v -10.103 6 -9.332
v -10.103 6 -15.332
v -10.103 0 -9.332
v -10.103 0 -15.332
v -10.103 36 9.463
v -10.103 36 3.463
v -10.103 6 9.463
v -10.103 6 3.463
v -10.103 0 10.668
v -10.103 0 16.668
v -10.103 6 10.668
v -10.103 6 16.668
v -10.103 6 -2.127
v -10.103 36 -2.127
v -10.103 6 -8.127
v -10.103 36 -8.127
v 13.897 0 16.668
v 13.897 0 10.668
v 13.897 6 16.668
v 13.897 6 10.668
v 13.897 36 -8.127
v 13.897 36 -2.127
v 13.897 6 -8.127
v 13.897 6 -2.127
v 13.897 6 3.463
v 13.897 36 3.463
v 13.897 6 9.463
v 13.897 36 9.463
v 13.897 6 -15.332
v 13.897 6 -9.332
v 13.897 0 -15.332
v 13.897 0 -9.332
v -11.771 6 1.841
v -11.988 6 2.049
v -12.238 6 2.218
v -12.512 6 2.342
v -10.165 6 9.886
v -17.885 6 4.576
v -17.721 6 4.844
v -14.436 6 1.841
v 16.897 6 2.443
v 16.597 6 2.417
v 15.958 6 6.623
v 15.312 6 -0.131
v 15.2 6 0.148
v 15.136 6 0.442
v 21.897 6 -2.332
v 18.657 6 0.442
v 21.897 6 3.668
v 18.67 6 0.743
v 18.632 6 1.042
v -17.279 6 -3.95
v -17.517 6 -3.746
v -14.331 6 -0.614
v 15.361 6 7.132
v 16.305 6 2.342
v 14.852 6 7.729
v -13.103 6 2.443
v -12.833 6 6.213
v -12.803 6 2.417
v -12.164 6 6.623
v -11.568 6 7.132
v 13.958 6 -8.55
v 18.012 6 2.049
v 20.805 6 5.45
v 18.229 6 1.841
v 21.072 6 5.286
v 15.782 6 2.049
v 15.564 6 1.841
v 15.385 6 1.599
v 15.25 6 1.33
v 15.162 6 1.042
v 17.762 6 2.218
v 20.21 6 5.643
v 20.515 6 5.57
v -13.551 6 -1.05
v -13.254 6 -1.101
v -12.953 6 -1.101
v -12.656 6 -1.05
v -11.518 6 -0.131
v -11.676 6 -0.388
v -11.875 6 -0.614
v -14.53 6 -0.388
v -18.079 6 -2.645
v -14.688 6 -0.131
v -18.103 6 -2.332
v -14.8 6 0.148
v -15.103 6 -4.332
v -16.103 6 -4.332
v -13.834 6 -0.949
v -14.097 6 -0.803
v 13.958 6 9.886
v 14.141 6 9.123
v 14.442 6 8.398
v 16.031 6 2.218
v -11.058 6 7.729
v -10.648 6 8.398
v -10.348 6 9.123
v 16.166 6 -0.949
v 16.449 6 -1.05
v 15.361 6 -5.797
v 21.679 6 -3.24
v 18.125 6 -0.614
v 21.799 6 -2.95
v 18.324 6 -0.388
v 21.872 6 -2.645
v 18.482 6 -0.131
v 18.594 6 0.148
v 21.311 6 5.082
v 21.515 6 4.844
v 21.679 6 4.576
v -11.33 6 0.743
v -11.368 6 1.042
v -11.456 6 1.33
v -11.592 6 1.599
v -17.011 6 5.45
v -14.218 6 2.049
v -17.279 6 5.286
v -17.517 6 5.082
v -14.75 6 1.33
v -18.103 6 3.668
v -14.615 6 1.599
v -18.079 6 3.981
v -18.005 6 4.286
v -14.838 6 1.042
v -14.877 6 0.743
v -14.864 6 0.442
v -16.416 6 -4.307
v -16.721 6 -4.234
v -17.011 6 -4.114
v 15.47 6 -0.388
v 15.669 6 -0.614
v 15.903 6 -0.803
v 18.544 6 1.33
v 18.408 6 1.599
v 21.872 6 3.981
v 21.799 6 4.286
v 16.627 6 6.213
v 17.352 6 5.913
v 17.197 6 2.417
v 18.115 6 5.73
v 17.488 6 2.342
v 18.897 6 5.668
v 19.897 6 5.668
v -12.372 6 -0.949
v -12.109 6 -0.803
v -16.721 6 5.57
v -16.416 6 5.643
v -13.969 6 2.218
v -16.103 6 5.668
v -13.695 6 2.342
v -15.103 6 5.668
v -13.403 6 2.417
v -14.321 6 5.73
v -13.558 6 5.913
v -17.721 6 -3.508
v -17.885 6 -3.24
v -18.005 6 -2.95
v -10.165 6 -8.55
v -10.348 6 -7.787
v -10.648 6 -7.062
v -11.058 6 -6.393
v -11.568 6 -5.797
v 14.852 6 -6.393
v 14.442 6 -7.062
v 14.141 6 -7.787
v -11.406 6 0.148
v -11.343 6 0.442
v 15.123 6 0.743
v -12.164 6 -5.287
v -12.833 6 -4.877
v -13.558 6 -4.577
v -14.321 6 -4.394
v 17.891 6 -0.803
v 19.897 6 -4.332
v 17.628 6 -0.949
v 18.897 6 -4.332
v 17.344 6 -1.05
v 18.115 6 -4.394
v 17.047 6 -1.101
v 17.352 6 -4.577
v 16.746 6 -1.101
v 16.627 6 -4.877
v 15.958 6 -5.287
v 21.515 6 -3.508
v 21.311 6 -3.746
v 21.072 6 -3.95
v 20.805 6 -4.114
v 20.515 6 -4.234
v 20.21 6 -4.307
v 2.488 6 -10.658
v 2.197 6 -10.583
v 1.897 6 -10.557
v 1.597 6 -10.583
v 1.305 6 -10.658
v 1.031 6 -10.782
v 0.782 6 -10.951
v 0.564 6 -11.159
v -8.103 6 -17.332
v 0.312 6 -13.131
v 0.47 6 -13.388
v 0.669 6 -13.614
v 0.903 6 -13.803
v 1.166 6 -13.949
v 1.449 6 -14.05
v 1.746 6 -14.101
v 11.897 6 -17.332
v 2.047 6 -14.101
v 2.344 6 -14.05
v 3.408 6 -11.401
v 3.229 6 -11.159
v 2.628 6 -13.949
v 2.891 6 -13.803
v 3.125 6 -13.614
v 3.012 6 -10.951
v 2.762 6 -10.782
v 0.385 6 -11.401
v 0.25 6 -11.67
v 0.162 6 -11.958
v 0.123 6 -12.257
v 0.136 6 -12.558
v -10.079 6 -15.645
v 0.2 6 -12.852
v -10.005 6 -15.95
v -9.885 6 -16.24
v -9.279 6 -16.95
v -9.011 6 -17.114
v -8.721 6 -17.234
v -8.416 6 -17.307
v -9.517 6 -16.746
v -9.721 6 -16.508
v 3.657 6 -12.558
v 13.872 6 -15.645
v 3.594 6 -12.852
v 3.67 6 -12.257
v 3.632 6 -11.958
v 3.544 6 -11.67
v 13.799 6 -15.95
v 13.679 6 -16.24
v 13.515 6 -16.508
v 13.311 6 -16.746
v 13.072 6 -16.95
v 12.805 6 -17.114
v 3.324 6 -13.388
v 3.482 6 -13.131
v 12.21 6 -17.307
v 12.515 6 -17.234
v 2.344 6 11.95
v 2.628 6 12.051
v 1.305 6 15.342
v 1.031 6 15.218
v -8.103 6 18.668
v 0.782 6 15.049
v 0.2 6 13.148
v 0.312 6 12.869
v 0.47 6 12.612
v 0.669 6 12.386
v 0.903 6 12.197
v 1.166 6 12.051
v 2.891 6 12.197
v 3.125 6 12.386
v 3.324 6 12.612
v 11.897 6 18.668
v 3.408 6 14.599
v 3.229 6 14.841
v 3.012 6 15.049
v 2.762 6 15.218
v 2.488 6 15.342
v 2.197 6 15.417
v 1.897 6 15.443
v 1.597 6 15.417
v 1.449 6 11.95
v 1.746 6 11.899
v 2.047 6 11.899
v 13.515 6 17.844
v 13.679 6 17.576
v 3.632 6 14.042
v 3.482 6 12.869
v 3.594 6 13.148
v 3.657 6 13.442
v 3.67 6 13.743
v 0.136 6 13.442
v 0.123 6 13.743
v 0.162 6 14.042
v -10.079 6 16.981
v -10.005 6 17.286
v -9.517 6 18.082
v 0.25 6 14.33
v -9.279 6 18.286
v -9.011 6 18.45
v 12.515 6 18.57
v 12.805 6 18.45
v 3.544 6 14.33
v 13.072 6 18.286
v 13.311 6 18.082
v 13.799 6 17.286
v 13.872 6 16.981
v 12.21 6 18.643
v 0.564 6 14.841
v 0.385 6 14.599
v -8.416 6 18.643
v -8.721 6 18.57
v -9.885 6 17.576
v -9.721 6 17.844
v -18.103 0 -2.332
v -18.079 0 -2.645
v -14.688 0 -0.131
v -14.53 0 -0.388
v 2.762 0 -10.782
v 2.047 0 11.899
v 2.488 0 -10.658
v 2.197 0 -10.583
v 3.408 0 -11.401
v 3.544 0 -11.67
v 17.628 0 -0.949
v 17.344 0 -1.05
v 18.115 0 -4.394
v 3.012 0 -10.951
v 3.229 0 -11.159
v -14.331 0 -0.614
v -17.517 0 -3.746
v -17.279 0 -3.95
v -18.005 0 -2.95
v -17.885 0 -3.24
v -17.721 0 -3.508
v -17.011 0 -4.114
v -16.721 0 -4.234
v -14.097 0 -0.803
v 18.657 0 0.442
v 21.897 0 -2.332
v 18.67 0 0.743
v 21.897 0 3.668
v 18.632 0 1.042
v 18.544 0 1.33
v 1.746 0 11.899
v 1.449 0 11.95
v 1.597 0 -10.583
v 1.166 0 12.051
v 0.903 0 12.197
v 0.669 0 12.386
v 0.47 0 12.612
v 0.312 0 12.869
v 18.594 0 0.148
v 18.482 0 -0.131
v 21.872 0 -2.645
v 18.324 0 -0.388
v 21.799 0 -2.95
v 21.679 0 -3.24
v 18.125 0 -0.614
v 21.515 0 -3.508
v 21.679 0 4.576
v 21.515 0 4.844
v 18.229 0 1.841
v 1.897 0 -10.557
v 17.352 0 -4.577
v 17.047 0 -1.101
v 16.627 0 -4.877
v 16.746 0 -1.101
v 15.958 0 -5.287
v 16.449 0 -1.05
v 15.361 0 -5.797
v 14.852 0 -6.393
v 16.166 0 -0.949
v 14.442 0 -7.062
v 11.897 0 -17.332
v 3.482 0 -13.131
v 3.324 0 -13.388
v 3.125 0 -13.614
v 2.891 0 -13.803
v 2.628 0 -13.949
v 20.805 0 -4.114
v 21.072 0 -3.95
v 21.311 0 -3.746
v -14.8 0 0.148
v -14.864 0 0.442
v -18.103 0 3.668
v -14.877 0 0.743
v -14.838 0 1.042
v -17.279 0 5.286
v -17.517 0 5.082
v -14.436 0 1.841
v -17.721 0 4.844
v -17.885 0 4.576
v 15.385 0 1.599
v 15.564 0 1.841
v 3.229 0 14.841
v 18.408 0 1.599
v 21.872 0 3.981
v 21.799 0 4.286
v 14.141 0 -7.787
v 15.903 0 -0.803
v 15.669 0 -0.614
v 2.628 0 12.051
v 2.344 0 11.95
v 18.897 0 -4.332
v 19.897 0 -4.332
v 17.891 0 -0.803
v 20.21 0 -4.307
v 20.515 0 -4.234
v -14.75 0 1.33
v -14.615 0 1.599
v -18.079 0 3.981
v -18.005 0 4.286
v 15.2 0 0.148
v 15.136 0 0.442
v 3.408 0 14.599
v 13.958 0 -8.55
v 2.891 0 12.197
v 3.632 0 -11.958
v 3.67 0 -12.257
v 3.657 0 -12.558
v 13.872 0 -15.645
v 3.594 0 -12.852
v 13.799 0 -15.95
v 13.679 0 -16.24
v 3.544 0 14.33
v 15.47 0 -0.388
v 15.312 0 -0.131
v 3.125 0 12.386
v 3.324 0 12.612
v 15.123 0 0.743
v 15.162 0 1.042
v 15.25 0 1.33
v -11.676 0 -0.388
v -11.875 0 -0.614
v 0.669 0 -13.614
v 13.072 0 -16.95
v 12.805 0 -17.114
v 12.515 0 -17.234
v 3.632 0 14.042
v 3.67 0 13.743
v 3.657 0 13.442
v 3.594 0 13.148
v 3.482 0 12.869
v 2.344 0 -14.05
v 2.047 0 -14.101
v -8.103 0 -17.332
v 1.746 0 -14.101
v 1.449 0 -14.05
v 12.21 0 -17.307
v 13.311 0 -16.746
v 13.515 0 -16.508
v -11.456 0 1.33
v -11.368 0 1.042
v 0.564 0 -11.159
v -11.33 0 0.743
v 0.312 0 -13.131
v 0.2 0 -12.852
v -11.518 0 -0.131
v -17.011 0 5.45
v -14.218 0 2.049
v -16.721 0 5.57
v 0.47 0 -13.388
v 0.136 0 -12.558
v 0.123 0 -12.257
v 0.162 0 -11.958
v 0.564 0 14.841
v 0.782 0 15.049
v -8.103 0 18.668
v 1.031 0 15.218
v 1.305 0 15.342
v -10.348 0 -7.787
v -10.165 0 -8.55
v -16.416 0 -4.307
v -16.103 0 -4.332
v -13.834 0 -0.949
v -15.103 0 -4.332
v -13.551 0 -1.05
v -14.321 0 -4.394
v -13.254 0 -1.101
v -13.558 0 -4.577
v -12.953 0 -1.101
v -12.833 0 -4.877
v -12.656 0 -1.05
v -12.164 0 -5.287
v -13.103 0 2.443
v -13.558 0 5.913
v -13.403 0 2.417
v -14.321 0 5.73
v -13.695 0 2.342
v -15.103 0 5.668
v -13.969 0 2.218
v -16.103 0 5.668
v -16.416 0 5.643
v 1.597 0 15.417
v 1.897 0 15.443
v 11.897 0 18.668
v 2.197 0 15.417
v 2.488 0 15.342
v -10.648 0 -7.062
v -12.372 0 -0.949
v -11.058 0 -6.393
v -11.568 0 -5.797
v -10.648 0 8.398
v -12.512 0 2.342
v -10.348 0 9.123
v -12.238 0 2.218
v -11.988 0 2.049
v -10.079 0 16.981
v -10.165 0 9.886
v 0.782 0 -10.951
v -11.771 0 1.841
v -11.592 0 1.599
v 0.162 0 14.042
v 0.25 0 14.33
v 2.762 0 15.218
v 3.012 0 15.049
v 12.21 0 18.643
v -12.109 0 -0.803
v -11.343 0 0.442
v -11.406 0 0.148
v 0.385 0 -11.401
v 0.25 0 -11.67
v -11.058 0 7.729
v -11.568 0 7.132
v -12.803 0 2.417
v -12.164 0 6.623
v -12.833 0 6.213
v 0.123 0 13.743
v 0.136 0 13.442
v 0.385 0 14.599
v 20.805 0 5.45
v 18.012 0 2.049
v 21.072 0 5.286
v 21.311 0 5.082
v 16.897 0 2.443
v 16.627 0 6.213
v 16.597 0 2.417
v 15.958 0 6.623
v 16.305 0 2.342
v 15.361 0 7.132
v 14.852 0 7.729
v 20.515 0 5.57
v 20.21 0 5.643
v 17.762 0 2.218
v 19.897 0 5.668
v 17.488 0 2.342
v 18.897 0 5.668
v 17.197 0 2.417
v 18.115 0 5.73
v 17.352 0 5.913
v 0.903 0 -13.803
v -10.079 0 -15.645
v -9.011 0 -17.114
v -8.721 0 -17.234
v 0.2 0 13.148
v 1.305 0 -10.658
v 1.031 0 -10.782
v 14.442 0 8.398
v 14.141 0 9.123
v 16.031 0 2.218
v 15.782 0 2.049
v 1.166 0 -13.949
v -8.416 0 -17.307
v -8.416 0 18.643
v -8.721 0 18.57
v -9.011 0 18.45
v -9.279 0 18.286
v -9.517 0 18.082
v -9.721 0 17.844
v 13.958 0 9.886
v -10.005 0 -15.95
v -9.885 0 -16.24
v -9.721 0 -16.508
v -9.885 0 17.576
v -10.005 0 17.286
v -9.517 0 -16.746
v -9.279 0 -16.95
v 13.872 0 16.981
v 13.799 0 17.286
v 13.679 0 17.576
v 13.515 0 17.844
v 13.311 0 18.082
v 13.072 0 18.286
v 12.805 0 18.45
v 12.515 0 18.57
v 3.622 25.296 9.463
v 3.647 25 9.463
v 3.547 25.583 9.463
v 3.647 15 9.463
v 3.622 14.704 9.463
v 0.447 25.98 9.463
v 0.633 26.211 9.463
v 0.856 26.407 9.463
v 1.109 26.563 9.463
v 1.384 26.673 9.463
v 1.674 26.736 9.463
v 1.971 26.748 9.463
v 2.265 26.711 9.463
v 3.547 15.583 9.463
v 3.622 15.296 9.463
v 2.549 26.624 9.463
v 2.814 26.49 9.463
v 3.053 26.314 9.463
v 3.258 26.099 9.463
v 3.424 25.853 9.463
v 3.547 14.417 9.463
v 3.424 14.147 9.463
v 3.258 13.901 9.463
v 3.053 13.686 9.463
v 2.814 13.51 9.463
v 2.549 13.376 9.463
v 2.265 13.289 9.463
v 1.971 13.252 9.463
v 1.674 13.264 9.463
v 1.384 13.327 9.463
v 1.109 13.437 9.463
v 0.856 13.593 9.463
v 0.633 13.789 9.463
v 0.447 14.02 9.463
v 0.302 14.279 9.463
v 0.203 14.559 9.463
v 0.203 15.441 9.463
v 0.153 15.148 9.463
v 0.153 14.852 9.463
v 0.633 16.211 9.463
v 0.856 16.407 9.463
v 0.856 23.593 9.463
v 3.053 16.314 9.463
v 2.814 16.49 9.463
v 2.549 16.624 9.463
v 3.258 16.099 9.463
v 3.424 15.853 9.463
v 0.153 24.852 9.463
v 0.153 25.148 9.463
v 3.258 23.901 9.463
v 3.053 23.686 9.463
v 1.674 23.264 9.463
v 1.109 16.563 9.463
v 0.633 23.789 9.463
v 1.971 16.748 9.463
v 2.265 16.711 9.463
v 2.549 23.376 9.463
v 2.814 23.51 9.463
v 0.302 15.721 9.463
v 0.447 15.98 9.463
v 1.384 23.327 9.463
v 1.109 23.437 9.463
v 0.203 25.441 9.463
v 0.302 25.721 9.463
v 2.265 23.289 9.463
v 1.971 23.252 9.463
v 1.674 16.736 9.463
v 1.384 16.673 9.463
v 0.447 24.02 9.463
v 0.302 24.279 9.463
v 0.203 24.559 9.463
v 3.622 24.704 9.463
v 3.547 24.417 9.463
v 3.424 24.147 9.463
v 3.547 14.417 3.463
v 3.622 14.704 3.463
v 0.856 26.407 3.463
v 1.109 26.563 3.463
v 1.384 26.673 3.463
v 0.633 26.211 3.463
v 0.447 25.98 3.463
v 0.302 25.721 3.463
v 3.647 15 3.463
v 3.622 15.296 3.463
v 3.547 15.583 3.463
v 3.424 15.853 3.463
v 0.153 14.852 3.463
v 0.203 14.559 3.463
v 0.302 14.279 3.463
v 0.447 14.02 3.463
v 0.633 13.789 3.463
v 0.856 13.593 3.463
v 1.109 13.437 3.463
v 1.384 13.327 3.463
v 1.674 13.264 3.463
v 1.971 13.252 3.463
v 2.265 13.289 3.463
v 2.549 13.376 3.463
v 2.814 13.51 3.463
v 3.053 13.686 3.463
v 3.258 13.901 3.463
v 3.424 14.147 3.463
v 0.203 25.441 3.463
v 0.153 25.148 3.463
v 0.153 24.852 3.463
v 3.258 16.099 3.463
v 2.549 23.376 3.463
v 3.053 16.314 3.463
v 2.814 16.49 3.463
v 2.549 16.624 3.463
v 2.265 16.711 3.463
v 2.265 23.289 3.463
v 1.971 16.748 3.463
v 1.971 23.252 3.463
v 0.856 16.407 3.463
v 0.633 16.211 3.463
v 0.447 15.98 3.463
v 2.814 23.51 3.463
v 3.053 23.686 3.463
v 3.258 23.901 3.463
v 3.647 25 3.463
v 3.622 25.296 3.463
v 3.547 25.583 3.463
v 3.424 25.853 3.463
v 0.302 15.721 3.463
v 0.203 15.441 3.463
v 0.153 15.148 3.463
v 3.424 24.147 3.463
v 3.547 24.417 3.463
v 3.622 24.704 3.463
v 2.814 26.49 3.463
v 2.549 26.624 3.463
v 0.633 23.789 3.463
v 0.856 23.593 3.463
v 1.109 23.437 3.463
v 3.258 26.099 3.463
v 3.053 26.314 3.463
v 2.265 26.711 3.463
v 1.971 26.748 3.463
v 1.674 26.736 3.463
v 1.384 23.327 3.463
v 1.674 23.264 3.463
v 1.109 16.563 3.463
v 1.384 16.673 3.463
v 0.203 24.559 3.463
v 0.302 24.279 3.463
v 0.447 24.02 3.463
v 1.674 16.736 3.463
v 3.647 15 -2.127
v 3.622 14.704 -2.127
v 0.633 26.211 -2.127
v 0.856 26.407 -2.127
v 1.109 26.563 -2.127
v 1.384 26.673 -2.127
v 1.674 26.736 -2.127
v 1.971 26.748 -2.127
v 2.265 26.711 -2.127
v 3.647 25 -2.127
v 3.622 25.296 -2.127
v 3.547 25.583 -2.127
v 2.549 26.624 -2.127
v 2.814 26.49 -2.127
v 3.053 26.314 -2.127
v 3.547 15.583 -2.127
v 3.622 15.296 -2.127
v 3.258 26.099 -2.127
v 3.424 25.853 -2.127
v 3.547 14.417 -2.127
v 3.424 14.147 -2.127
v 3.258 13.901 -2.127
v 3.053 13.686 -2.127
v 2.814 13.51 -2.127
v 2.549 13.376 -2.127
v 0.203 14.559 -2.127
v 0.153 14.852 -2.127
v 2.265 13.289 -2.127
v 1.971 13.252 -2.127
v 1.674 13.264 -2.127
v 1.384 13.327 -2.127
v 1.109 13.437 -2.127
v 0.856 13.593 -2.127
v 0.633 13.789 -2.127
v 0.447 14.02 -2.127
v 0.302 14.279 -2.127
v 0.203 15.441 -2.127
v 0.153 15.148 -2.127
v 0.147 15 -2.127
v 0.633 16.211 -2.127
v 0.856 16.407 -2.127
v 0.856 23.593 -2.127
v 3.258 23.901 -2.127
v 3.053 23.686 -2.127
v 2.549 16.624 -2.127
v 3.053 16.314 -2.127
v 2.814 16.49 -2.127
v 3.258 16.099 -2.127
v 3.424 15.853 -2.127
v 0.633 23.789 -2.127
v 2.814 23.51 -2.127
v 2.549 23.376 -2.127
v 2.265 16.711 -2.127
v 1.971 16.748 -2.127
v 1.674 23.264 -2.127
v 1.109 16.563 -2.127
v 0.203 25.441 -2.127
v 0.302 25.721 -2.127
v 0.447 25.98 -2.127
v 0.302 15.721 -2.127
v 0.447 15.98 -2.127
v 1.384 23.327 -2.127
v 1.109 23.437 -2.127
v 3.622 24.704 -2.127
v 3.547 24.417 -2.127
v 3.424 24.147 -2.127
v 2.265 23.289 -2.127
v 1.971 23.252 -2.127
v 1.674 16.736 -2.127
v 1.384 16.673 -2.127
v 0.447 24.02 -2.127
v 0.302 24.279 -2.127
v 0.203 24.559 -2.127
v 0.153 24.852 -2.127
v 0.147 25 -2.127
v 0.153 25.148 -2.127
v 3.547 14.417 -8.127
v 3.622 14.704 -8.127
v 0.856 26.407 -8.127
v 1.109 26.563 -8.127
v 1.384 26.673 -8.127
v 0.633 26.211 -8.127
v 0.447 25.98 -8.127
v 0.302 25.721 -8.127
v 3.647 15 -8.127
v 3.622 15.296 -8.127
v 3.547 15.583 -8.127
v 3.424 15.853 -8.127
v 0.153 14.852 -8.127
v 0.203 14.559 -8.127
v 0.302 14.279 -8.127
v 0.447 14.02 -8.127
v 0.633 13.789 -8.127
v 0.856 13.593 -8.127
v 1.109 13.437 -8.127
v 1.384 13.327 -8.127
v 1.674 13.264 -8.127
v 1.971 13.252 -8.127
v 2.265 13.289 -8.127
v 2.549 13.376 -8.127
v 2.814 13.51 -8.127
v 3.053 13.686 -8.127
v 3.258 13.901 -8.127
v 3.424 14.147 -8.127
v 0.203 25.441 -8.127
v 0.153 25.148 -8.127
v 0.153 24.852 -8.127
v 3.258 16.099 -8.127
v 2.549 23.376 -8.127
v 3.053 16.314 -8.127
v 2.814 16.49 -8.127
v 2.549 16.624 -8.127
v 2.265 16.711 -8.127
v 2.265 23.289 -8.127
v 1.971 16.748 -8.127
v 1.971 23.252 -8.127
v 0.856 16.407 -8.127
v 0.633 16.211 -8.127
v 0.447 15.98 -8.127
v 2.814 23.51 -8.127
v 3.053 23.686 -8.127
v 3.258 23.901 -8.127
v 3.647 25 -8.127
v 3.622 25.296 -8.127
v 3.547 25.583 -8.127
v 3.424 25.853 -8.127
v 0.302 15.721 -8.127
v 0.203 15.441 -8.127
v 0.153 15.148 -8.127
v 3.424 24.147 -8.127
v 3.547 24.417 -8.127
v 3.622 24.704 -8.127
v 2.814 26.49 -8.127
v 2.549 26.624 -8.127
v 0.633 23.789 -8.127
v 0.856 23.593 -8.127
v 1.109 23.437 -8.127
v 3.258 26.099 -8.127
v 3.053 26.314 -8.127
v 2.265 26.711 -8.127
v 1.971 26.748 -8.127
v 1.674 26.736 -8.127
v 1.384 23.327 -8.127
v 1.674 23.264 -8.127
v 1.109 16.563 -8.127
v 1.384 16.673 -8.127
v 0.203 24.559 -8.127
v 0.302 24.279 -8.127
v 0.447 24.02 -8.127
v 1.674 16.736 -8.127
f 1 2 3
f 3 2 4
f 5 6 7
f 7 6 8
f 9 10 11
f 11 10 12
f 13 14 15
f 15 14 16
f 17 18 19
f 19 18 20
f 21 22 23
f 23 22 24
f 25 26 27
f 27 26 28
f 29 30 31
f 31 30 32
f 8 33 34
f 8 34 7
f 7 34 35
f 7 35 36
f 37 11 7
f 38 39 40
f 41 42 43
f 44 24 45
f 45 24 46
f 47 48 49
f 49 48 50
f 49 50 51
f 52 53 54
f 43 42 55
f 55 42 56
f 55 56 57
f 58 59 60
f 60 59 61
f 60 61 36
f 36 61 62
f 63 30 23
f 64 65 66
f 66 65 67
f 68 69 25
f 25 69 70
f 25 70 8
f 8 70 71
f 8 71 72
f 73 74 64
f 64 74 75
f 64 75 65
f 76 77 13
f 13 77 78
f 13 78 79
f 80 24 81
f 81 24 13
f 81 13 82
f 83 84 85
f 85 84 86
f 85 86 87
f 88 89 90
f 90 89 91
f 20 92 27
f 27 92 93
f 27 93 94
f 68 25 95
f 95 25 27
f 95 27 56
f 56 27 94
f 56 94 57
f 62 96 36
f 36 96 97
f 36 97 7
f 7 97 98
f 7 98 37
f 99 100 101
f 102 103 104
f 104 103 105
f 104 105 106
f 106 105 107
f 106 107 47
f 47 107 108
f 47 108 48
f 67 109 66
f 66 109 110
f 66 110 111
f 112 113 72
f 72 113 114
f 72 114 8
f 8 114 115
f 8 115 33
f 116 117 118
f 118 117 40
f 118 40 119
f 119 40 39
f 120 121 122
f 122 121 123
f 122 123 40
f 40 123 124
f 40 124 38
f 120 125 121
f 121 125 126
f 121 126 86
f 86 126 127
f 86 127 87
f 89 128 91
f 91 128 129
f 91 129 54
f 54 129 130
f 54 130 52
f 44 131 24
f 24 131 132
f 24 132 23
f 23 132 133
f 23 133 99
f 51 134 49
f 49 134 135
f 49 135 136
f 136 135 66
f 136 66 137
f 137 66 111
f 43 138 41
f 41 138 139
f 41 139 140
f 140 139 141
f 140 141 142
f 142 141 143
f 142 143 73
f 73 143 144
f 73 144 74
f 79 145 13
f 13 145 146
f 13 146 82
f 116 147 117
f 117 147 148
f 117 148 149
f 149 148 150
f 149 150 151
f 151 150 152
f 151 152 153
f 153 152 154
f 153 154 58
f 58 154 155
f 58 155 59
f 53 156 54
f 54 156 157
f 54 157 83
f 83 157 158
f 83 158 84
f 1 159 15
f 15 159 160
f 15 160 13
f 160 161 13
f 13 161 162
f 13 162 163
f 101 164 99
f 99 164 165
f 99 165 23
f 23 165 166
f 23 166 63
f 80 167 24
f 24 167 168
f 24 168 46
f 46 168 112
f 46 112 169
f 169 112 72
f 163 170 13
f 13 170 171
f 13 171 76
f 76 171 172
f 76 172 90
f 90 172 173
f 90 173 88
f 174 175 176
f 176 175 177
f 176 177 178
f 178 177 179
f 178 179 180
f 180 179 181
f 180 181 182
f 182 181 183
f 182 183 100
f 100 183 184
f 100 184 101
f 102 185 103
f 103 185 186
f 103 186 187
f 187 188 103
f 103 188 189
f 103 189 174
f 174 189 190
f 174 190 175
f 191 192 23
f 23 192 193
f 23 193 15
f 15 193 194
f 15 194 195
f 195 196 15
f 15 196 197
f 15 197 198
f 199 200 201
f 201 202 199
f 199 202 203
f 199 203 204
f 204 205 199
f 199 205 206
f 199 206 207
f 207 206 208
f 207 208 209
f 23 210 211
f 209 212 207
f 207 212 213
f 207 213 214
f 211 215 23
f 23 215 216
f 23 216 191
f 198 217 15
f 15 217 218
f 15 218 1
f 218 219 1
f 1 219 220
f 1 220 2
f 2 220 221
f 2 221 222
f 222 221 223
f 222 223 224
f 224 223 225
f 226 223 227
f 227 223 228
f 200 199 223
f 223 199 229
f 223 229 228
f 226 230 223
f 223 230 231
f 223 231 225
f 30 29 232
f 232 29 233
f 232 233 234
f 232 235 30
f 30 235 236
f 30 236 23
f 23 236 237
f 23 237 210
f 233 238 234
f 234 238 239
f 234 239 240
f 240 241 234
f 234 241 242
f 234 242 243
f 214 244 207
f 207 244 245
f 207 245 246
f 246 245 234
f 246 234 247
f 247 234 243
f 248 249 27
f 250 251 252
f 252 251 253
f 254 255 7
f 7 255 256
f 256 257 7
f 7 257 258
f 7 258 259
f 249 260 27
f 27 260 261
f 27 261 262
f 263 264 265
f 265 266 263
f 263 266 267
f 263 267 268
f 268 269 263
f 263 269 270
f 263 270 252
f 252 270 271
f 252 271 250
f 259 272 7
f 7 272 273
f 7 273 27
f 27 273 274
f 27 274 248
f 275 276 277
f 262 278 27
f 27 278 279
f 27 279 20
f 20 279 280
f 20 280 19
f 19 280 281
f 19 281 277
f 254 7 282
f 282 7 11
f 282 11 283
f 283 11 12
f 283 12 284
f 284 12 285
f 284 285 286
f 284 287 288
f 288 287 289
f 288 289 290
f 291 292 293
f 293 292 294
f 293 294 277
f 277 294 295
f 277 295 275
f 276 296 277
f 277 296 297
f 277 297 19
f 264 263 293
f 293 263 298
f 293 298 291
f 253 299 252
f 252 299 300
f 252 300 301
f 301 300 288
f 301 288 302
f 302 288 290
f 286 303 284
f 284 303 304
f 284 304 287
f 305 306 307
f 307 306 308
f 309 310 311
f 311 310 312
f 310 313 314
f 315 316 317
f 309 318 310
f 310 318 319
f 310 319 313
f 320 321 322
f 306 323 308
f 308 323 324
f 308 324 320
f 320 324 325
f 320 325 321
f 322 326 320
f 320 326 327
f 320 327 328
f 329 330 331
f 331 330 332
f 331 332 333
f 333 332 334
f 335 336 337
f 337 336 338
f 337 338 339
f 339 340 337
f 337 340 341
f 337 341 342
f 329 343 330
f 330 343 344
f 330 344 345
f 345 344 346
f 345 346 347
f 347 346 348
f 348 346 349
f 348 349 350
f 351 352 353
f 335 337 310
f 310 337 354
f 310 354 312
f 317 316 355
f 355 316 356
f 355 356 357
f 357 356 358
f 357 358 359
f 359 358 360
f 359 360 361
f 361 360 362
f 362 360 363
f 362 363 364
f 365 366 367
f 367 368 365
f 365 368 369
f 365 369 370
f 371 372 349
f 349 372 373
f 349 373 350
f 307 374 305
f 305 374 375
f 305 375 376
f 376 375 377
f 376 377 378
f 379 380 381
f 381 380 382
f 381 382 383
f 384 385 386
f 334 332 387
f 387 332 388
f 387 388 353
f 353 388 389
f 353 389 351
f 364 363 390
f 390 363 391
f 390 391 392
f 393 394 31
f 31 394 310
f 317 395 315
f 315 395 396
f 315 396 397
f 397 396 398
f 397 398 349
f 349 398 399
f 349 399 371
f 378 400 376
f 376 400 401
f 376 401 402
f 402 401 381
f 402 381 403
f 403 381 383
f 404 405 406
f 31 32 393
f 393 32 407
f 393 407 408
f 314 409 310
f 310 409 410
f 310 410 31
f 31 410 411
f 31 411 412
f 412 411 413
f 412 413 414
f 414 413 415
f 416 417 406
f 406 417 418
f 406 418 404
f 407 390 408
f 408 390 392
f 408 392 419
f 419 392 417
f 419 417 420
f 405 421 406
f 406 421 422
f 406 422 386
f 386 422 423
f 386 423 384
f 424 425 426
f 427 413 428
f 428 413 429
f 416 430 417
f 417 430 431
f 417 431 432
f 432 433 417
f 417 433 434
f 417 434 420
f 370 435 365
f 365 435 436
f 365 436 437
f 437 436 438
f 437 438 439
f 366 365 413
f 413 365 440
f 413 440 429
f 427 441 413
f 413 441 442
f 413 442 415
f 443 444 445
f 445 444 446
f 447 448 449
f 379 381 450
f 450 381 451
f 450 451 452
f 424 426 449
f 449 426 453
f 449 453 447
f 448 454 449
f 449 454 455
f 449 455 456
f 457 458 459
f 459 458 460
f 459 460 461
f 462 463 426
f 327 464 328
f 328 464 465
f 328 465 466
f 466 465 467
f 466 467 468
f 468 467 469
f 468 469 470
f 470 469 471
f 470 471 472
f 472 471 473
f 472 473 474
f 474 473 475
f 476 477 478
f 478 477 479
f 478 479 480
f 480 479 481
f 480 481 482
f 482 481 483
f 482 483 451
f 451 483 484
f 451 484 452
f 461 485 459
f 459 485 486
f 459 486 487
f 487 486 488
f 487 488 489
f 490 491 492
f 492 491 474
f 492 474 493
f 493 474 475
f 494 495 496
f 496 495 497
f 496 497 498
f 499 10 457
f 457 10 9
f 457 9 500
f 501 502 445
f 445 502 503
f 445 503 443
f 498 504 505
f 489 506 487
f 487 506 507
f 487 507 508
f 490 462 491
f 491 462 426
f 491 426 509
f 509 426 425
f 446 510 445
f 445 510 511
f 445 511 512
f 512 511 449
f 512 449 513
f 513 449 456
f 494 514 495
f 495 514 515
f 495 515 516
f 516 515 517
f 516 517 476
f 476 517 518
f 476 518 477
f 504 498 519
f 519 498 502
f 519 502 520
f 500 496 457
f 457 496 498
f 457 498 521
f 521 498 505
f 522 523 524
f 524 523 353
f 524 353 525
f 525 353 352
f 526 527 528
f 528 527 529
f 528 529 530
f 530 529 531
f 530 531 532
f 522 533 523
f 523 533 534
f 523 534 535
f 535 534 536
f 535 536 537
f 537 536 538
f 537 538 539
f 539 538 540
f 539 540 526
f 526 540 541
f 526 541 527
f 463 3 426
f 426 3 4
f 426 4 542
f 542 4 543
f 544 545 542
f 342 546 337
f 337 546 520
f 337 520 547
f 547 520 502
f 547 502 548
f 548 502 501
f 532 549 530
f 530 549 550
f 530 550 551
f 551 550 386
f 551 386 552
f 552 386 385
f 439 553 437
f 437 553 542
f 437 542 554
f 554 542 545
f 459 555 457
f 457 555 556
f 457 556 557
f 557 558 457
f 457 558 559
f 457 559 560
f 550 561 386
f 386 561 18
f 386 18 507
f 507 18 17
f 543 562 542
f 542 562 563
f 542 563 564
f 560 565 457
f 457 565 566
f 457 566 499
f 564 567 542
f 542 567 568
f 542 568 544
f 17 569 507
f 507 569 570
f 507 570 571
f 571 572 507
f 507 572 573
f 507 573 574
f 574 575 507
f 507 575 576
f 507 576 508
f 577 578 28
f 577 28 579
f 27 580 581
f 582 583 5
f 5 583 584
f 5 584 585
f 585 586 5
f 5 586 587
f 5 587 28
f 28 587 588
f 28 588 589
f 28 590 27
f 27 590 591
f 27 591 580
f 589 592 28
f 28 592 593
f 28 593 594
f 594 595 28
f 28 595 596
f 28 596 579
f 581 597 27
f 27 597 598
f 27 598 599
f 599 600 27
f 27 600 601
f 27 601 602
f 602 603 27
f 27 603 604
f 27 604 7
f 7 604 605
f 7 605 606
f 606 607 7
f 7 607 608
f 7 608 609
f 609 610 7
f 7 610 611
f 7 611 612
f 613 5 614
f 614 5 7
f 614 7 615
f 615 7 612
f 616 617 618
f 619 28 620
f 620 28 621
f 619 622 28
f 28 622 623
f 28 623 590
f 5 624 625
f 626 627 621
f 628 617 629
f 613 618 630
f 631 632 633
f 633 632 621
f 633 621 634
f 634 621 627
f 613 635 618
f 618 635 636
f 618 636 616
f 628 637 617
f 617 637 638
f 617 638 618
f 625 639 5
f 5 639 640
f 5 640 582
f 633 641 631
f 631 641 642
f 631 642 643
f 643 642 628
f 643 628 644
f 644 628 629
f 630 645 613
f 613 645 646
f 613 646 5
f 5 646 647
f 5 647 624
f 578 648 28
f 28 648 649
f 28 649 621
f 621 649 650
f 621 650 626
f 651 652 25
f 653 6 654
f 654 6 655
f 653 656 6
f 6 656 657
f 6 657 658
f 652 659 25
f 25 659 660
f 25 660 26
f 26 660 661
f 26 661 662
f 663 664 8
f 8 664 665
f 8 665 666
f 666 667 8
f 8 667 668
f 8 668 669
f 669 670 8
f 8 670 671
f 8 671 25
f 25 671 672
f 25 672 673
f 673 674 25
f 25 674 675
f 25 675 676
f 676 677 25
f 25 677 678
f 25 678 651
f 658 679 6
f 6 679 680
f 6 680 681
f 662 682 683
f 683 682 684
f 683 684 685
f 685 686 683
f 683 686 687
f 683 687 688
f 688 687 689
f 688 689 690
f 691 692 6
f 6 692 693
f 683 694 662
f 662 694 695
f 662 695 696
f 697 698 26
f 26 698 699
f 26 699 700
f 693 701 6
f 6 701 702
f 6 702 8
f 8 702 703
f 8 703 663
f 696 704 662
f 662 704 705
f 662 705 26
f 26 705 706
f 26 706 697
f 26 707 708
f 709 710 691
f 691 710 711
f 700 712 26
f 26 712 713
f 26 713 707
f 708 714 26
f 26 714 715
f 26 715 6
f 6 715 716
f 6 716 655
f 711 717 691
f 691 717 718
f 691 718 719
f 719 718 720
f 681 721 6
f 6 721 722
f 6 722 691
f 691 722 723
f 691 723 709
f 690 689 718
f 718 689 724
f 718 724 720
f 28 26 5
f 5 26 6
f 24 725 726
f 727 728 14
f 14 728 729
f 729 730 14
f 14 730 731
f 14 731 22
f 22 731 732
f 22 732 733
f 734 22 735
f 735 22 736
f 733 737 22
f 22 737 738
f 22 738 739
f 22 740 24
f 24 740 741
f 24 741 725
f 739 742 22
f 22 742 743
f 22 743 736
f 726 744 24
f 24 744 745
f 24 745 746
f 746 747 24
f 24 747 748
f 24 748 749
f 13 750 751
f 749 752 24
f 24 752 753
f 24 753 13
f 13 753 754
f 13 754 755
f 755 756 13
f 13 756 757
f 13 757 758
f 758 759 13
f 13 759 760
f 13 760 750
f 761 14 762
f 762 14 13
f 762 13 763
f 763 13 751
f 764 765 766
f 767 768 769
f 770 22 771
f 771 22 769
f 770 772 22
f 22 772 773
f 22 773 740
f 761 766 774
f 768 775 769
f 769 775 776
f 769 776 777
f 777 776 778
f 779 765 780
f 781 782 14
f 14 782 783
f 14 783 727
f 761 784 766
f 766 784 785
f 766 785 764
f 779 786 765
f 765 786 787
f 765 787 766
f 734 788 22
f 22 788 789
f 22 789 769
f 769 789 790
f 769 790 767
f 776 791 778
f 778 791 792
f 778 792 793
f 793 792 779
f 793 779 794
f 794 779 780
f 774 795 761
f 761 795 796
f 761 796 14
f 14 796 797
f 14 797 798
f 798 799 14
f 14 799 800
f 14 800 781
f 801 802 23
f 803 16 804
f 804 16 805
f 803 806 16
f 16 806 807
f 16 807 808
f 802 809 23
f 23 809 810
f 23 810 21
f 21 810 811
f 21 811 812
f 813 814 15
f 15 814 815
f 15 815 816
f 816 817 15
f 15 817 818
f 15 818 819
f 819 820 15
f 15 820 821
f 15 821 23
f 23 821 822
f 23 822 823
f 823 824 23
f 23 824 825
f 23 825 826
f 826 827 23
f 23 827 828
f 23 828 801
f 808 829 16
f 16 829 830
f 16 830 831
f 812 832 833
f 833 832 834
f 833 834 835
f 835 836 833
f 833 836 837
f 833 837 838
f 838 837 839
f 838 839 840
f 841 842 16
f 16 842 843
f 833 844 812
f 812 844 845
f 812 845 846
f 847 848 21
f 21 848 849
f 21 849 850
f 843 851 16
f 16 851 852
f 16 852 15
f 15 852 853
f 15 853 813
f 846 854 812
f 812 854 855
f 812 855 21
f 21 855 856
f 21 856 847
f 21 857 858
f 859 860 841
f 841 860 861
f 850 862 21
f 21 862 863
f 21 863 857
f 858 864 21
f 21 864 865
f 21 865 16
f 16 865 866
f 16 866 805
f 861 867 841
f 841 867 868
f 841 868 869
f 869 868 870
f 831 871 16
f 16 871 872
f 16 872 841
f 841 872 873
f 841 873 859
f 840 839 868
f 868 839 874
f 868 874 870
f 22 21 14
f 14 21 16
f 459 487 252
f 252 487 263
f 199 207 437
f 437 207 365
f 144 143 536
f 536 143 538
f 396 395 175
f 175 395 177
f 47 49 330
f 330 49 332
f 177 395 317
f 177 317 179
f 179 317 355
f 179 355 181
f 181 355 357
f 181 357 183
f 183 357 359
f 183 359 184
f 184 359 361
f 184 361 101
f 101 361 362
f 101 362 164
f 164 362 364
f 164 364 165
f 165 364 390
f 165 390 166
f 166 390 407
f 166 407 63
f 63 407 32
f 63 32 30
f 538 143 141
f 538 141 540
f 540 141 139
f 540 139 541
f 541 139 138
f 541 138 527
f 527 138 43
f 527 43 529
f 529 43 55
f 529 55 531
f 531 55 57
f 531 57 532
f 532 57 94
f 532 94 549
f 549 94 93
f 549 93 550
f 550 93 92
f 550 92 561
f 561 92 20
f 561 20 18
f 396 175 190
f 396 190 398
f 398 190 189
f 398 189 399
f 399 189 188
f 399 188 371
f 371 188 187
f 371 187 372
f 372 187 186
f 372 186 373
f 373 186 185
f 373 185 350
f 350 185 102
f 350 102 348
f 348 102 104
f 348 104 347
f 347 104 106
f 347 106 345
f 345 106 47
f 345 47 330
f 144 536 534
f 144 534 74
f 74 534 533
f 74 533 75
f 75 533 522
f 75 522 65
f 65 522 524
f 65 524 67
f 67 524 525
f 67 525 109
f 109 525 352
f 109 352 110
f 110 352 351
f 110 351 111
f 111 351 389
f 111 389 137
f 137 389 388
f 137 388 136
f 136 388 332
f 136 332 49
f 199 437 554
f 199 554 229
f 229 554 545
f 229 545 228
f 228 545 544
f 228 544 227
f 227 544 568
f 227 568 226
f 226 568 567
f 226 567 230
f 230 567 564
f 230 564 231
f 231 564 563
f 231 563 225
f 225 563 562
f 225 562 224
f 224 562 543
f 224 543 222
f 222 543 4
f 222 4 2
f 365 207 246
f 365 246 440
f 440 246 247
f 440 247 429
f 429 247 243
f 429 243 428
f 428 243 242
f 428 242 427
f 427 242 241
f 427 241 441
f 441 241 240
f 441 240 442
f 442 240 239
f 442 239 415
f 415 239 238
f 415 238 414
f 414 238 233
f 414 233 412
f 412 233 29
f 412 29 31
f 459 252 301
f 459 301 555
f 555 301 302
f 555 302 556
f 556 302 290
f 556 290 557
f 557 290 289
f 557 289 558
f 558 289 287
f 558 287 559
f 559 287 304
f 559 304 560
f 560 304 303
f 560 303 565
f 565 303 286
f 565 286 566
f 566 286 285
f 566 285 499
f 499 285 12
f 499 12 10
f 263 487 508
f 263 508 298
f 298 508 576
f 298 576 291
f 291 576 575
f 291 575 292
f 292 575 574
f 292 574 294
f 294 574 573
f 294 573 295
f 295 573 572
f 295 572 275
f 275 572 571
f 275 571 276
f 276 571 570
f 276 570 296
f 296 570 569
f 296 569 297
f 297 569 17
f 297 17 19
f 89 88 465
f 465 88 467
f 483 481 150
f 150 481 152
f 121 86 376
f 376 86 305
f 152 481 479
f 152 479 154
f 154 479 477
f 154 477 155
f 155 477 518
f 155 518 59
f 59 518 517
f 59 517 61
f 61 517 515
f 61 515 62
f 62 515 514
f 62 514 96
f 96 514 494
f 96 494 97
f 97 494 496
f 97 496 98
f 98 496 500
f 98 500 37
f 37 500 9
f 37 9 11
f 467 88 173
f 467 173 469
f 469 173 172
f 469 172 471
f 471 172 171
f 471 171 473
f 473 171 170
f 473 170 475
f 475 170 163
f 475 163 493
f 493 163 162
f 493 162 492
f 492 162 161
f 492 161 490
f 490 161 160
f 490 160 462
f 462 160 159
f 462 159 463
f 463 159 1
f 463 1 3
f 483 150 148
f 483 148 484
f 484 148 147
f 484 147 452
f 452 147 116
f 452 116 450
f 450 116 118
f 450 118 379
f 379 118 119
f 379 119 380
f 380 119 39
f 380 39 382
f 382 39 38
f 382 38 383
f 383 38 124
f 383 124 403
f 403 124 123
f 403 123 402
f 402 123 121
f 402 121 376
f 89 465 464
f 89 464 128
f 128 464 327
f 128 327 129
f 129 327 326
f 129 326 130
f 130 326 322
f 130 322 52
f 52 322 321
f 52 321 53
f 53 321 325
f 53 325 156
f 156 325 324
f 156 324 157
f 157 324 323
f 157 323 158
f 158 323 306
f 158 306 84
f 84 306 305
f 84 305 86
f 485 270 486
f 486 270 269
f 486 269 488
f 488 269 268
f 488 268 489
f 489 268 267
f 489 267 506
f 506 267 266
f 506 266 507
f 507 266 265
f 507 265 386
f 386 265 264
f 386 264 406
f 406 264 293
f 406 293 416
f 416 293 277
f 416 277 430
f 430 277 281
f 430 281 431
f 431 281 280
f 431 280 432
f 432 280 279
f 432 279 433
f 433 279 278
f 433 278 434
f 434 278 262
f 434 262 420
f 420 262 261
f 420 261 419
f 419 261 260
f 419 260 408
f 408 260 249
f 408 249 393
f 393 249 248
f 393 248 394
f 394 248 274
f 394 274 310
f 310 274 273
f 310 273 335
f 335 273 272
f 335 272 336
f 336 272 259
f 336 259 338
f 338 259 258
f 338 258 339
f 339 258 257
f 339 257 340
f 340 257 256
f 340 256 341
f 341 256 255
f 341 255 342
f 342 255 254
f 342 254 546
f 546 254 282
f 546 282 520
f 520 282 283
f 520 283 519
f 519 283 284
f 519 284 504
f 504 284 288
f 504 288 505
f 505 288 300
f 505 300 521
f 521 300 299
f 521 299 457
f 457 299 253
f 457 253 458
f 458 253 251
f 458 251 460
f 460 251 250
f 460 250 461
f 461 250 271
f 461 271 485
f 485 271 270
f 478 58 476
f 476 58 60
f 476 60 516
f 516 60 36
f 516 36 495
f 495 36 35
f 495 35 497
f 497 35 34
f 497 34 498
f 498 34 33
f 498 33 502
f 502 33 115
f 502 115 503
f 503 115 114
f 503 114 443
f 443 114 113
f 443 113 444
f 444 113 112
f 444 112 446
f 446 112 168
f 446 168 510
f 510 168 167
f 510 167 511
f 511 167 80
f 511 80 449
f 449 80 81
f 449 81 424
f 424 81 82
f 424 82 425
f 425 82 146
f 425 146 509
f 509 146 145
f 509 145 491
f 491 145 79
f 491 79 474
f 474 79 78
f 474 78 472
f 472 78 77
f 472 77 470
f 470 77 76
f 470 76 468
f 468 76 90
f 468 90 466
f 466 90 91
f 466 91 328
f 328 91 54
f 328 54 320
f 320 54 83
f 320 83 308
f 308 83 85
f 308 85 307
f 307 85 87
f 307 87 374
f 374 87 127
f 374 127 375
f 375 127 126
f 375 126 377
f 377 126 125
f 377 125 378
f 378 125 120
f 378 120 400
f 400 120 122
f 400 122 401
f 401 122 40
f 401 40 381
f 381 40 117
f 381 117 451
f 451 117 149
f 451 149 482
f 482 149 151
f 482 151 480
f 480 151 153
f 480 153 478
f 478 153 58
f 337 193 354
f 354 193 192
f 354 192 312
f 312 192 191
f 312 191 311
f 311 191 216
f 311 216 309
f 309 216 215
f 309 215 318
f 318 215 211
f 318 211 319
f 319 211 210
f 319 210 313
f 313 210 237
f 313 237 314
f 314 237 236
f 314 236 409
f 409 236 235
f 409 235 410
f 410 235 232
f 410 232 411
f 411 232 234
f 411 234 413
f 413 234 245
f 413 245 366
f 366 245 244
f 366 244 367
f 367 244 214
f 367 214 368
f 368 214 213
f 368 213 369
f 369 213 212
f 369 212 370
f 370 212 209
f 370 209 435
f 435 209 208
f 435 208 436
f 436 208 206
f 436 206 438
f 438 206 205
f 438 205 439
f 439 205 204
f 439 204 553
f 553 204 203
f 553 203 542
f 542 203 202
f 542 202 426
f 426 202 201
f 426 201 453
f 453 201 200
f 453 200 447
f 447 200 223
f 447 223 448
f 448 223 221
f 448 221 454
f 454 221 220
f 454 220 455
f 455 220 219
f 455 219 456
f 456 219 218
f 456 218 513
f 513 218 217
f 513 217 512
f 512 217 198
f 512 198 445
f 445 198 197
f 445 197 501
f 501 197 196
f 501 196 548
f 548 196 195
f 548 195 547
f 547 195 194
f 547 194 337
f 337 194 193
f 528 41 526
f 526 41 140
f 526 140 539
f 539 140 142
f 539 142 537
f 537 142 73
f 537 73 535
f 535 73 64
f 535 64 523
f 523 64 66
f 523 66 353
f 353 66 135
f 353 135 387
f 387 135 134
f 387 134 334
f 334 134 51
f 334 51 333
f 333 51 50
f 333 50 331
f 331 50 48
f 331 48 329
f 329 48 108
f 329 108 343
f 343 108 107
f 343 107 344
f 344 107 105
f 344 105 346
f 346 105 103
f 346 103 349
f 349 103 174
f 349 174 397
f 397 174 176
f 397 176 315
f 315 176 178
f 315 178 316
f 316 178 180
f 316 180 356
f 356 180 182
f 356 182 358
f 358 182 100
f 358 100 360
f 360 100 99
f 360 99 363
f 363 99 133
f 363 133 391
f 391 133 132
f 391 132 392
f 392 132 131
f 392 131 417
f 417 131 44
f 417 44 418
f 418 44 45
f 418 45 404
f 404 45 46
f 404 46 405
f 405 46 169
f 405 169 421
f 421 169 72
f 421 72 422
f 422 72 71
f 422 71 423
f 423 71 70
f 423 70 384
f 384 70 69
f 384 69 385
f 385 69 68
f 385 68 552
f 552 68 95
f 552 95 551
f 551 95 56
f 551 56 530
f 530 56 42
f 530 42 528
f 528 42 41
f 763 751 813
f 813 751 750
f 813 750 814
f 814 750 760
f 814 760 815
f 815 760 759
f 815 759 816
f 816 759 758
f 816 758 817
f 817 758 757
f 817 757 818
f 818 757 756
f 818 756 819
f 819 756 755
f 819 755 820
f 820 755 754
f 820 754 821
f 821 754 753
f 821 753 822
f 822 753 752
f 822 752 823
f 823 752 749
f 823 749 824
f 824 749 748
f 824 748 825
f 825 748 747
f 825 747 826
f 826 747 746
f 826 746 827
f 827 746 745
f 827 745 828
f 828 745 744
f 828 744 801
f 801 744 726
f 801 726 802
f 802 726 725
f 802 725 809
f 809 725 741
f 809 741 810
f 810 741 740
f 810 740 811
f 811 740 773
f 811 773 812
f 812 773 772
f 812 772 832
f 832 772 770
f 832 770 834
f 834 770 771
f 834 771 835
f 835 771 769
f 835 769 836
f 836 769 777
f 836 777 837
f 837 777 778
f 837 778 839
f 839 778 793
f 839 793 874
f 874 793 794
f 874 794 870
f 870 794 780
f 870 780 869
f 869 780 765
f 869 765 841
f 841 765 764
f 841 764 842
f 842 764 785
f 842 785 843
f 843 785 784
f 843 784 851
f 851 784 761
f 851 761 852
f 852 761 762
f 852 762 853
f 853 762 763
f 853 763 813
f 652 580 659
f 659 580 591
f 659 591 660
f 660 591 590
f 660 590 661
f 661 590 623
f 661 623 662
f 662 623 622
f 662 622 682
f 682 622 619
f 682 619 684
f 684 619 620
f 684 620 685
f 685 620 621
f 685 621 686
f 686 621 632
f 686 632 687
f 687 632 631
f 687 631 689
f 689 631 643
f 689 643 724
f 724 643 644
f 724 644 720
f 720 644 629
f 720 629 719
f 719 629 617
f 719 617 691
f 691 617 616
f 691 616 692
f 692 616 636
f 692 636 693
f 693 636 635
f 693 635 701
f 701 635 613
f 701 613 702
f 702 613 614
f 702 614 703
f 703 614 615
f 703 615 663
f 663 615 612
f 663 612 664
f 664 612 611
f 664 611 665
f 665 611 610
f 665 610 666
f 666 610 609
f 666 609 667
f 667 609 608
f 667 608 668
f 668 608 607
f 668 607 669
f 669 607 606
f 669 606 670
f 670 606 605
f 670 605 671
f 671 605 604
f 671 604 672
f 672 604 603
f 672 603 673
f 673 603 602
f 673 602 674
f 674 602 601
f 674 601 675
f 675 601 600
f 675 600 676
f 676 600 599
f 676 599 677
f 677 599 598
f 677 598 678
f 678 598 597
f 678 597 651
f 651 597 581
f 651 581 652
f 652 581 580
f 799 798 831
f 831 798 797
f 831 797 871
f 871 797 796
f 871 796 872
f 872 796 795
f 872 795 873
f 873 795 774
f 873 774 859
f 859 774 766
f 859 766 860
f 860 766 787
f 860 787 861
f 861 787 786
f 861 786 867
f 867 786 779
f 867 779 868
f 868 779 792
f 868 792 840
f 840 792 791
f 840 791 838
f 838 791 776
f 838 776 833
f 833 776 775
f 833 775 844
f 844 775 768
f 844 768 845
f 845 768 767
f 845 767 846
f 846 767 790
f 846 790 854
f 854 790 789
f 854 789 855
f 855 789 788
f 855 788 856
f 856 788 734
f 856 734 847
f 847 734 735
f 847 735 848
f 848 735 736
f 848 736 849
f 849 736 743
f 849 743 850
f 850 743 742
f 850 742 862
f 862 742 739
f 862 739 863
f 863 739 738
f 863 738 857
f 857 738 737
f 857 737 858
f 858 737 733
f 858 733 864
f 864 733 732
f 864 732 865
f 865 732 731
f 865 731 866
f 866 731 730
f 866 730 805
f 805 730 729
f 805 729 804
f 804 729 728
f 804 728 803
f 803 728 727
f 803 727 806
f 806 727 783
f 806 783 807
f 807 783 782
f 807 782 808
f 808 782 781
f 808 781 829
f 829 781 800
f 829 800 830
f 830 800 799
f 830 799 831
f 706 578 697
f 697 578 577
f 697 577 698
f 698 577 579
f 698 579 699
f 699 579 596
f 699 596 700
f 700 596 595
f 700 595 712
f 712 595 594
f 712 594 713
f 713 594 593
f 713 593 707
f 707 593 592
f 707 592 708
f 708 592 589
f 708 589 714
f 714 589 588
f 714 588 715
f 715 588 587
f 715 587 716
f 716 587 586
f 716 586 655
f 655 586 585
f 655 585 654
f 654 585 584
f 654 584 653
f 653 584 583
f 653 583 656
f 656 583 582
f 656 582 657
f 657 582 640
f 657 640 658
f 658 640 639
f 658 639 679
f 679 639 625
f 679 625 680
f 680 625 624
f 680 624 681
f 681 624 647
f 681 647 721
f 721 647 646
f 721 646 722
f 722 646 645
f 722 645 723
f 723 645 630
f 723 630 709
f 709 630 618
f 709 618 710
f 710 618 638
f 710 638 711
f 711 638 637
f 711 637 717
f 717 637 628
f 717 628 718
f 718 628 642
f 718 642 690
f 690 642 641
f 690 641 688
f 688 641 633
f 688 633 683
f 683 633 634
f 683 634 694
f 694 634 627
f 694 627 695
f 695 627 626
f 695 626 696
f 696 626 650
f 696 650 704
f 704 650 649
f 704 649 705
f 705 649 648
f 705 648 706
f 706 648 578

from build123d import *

# Parameters (mm, degrees)
SKETCH1_W           = 24
SKETCH1_H           = 24
BOSS_EXTRUDE1_DEPTH = 6
SKETCH2_W           = 24
SKETCH2_H           = 6
BOSS_EXTRUDE2_DEPTH = 30
SKETCH3_W           = 24
SKETCH3_H           = 6
BOSS_EXTRUDE3_DEPTH = 6
SKETCH4_W           = 24
SKETCH4_H           = 6
BOSS_EXTRUDE4_DEPTH = 6
SKETCH5_W           = 10
SKETCH5_H           = 6
BOSS_EXTRUDE5_DEPTH = 8
FILLET1_R           = 5
FILLET2_R           = 2
FILLET3_R           = 2
SKETCH6_W           = 10
SKETCH6_H           = 6
BOSS_EXTRUDE6_DEPTH = 8
FILLET4_R           = 5
FILLET5_R           = 2
SKETCH7_R           = 1.775
CUT_EXTRUDE1_DEPTH  = 42.568724431
CUT_EXTRUDE2_REACH  = 51.934
SKETCH8_R           = 1.75


with BuildPart() as part:
    # Sketch1 → Boss-Extrude1 (new body)
    with BuildSketch(Plane(origin=(0, 0, 0), x_dir=(1, 0, 0), z_dir=(0, 1, 0))):
        with Locations((1.896724894, -0.667948192)):
            Rectangle(SKETCH1_W, SKETCH1_H)
    extrude(amount=BOSS_EXTRUDE1_DEPTH)

    # Sketch2 → Boss-Extrude2 (add)
    with BuildSketch(Plane(origin=(0, 6, 0), x_dir=(1, 0, 0), z_dir=(0, 1, 0))):
        with Locations((1.896724894, -6.462948192)):
            Rectangle(SKETCH2_W, SKETCH2_H)
        with Locations((1.896724894, 5.127051808)):
            Rectangle(SKETCH2_W, SKETCH2_H)
    extrude(amount=BOSS_EXTRUDE2_DEPTH)

    # Sketch3 → Boss-Extrude3 (add)
    with BuildSketch(Plane.XY.offset(12.667948192)):
        with Locations((1.896724894, 3)):
            Rectangle(SKETCH3_W, SKETCH3_H)
    extrude(amount=BOSS_EXTRUDE3_DEPTH)

    # Sketch4 → Boss-Extrude4 (add)
    with BuildSketch(Plane(origin=(0, 0, -11.332051808), x_dir=(-1, 0, 0), z_dir=(0, 0, -1))):
        with Locations((-1.896724894, 3)):
            Rectangle(SKETCH4_W, SKETCH4_H)
    extrude(amount=BOSS_EXTRUDE4_DEPTH)

    # Sketch5 → Boss-Extrude5 (add)
    with BuildSketch(Plane(origin=(13.896724894, 0, 0), x_dir=(0, 0, -1), z_dir=(1, 0, 0))):
        with Locations((-0.667948192, 3)):
            Rectangle(SKETCH5_W, SKETCH5_H)
    extrude(amount=BOSS_EXTRUDE5_DEPTH)

    # Fillet1
    # the kernel refuses this fillet: 5 mm, written as the material it adds along each edge
    with BuildSketch(Plane(origin=(13.896724894, 0, -4.332051808), x_dir=(0, 0, -1), z_dir=(0, 1, 0)), Plane(origin=(13.896724894, 6, 5.667948192), x_dir=(0, 0, 1), z_dir=(0, -1, 0))) as fillet1_piece_1:
        with BuildLine():
            CenterArc((FILLET1_R, -FILLET1_R), FILLET1_R, 90, 90)
            Line((0, -FILLET1_R), (0, 0))
            Line((0, 0), (FILLET1_R, 0))
        make_face()
    extrude(amount=6)

    # Fillet2
    fillet2_edges = [part.edges().sort_by_distance(p)[0] for p in [
        (21.896724894, 3, -4.332051808),
        (21.896724894, 3, 5.667948192),
    ]]
    fillet(fillet2_edges, radius=FILLET2_R)

    # Fillet3
    fillet3_edges = [part.edges().sort_by_distance(p)[0] for p in [
        (-10.103275106, 3, 18.667948192),
        (13.896724894, 3, 18.667948192),
        (13.896724894, 3, -17.332051808),
        (-10.103275106, 3, -17.332051808),
    ]]
    fillet(fillet3_edges, radius=FILLET3_R)

    # Sketch6 → Boss-Extrude6 (add)
    with BuildSketch(Plane.ZY.offset(10.103275106)):
        with Locations((0.667948192, 3)):
            Rectangle(SKETCH6_W, SKETCH6_H)
    extrude(amount=BOSS_EXTRUDE6_DEPTH)

    # Fillet4
    # the kernel refuses this fillet: 5 mm, written as the material it adds along each edge
    with BuildSketch(Plane(origin=(-10.103275106, 6, -4.332051808), x_dir=(0, 0, -1), z_dir=(0, -1, 0)), Plane(origin=(-10.103275106, 0, 5.667948192), x_dir=(0, 0, 1), z_dir=(0, 1, 0))) as fillet4_piece_1:
        with BuildLine():
            CenterArc((FILLET4_R, -FILLET4_R), FILLET4_R, 90, 90)
            Line((0, -FILLET4_R), (0, 0))
            Line((0, 0), (FILLET4_R, 0))
        make_face()
    extrude(amount=6)

    # Fillet5
    fillet5_edges = [part.edges().sort_by_distance(p)[0] for p in [
        (-18.103275106, 3, -4.332051808),
        (-18.103275106, 3, 5.667948192),
    ]]
    fillet(fillet5_edges, radius=FILLET5_R)

    # Sketch7 → Cut-Extrude1 (cut, through all)
    with BuildSketch(Plane(origin=(0, 6, 0), x_dir=(1, 0, 0), z_dir=(0, 1, 0))):
        with Locations(Location((1.896724894, -13.667948192, 0), (0, 0, 270))):
            Circle(SKETCH7_R)
        with Locations(Location((-13.103275106, -0.667948192, 0), (0, 0, 270))):
            Circle(SKETCH7_R)
        with Locations(Location((1.896724894, 12.332051808, 0), (0, 0, 270))):
            Circle(SKETCH7_R)
        with Locations(Location((16.896724894, -0.667948192, 0), (0, 0, 270))):
            Circle(SKETCH7_R)
    extrude(amount=-CUT_EXTRUDE1_DEPTH, mode=Mode.SUBTRACT)

    # Cut-Extrude2: up to this face of the body (flat: up to its plane)
    cut_extrude2_end = Plane(part.part.faces().sort_by_distance((1.896724894, 21, -8.127051808))[0])
    # Sketch8 → Cut-Extrude2 (cut, up to the picked face)
    with BuildSketch(Plane.XY.offset(9.462948192), mode=Mode.PRIVATE) as cut_extrude2_sk1:
        with Locations((1.896724894, 15)):
            Circle(SKETCH8_R)
    cut_extrude2_tool1 = split(extrude(cut_extrude2_sk1.sketch, amount=-CUT_EXTRUDE2_REACH, mode=Mode.PRIVATE), bisect_by=cut_extrude2_end, keep=Keep.BOTH, mode=Mode.PRIVATE)
    # Sketch8 → Cut-Extrude2 (cut, up to the picked face)
    with BuildSketch(Plane.XY.offset(9.462948192), mode=Mode.PRIVATE) as cut_extrude2_sk2:
        with Locations((1.896724894, 25)):
            Circle(SKETCH8_R)
    cut_extrude2_tool2 = split(extrude(cut_extrude2_sk2.sketch, amount=-CUT_EXTRUDE2_REACH, mode=Mode.PRIVATE), bisect_by=cut_extrude2_end, keep=Keep.BOTH, mode=Mode.PRIVATE)
    add(cut_extrude2_tool1.solids().sort_by(Axis((1.896725, 15, 9.462948), (0, 0, -1)))[0], mode=Mode.SUBTRACT)
    add(cut_extrude2_tool2.solids().sort_by(Axis((1.896725, 25, 9.462948), (0, 0, -1)))[0], mode=Mode.SUBTRACT)


solid = part.part
